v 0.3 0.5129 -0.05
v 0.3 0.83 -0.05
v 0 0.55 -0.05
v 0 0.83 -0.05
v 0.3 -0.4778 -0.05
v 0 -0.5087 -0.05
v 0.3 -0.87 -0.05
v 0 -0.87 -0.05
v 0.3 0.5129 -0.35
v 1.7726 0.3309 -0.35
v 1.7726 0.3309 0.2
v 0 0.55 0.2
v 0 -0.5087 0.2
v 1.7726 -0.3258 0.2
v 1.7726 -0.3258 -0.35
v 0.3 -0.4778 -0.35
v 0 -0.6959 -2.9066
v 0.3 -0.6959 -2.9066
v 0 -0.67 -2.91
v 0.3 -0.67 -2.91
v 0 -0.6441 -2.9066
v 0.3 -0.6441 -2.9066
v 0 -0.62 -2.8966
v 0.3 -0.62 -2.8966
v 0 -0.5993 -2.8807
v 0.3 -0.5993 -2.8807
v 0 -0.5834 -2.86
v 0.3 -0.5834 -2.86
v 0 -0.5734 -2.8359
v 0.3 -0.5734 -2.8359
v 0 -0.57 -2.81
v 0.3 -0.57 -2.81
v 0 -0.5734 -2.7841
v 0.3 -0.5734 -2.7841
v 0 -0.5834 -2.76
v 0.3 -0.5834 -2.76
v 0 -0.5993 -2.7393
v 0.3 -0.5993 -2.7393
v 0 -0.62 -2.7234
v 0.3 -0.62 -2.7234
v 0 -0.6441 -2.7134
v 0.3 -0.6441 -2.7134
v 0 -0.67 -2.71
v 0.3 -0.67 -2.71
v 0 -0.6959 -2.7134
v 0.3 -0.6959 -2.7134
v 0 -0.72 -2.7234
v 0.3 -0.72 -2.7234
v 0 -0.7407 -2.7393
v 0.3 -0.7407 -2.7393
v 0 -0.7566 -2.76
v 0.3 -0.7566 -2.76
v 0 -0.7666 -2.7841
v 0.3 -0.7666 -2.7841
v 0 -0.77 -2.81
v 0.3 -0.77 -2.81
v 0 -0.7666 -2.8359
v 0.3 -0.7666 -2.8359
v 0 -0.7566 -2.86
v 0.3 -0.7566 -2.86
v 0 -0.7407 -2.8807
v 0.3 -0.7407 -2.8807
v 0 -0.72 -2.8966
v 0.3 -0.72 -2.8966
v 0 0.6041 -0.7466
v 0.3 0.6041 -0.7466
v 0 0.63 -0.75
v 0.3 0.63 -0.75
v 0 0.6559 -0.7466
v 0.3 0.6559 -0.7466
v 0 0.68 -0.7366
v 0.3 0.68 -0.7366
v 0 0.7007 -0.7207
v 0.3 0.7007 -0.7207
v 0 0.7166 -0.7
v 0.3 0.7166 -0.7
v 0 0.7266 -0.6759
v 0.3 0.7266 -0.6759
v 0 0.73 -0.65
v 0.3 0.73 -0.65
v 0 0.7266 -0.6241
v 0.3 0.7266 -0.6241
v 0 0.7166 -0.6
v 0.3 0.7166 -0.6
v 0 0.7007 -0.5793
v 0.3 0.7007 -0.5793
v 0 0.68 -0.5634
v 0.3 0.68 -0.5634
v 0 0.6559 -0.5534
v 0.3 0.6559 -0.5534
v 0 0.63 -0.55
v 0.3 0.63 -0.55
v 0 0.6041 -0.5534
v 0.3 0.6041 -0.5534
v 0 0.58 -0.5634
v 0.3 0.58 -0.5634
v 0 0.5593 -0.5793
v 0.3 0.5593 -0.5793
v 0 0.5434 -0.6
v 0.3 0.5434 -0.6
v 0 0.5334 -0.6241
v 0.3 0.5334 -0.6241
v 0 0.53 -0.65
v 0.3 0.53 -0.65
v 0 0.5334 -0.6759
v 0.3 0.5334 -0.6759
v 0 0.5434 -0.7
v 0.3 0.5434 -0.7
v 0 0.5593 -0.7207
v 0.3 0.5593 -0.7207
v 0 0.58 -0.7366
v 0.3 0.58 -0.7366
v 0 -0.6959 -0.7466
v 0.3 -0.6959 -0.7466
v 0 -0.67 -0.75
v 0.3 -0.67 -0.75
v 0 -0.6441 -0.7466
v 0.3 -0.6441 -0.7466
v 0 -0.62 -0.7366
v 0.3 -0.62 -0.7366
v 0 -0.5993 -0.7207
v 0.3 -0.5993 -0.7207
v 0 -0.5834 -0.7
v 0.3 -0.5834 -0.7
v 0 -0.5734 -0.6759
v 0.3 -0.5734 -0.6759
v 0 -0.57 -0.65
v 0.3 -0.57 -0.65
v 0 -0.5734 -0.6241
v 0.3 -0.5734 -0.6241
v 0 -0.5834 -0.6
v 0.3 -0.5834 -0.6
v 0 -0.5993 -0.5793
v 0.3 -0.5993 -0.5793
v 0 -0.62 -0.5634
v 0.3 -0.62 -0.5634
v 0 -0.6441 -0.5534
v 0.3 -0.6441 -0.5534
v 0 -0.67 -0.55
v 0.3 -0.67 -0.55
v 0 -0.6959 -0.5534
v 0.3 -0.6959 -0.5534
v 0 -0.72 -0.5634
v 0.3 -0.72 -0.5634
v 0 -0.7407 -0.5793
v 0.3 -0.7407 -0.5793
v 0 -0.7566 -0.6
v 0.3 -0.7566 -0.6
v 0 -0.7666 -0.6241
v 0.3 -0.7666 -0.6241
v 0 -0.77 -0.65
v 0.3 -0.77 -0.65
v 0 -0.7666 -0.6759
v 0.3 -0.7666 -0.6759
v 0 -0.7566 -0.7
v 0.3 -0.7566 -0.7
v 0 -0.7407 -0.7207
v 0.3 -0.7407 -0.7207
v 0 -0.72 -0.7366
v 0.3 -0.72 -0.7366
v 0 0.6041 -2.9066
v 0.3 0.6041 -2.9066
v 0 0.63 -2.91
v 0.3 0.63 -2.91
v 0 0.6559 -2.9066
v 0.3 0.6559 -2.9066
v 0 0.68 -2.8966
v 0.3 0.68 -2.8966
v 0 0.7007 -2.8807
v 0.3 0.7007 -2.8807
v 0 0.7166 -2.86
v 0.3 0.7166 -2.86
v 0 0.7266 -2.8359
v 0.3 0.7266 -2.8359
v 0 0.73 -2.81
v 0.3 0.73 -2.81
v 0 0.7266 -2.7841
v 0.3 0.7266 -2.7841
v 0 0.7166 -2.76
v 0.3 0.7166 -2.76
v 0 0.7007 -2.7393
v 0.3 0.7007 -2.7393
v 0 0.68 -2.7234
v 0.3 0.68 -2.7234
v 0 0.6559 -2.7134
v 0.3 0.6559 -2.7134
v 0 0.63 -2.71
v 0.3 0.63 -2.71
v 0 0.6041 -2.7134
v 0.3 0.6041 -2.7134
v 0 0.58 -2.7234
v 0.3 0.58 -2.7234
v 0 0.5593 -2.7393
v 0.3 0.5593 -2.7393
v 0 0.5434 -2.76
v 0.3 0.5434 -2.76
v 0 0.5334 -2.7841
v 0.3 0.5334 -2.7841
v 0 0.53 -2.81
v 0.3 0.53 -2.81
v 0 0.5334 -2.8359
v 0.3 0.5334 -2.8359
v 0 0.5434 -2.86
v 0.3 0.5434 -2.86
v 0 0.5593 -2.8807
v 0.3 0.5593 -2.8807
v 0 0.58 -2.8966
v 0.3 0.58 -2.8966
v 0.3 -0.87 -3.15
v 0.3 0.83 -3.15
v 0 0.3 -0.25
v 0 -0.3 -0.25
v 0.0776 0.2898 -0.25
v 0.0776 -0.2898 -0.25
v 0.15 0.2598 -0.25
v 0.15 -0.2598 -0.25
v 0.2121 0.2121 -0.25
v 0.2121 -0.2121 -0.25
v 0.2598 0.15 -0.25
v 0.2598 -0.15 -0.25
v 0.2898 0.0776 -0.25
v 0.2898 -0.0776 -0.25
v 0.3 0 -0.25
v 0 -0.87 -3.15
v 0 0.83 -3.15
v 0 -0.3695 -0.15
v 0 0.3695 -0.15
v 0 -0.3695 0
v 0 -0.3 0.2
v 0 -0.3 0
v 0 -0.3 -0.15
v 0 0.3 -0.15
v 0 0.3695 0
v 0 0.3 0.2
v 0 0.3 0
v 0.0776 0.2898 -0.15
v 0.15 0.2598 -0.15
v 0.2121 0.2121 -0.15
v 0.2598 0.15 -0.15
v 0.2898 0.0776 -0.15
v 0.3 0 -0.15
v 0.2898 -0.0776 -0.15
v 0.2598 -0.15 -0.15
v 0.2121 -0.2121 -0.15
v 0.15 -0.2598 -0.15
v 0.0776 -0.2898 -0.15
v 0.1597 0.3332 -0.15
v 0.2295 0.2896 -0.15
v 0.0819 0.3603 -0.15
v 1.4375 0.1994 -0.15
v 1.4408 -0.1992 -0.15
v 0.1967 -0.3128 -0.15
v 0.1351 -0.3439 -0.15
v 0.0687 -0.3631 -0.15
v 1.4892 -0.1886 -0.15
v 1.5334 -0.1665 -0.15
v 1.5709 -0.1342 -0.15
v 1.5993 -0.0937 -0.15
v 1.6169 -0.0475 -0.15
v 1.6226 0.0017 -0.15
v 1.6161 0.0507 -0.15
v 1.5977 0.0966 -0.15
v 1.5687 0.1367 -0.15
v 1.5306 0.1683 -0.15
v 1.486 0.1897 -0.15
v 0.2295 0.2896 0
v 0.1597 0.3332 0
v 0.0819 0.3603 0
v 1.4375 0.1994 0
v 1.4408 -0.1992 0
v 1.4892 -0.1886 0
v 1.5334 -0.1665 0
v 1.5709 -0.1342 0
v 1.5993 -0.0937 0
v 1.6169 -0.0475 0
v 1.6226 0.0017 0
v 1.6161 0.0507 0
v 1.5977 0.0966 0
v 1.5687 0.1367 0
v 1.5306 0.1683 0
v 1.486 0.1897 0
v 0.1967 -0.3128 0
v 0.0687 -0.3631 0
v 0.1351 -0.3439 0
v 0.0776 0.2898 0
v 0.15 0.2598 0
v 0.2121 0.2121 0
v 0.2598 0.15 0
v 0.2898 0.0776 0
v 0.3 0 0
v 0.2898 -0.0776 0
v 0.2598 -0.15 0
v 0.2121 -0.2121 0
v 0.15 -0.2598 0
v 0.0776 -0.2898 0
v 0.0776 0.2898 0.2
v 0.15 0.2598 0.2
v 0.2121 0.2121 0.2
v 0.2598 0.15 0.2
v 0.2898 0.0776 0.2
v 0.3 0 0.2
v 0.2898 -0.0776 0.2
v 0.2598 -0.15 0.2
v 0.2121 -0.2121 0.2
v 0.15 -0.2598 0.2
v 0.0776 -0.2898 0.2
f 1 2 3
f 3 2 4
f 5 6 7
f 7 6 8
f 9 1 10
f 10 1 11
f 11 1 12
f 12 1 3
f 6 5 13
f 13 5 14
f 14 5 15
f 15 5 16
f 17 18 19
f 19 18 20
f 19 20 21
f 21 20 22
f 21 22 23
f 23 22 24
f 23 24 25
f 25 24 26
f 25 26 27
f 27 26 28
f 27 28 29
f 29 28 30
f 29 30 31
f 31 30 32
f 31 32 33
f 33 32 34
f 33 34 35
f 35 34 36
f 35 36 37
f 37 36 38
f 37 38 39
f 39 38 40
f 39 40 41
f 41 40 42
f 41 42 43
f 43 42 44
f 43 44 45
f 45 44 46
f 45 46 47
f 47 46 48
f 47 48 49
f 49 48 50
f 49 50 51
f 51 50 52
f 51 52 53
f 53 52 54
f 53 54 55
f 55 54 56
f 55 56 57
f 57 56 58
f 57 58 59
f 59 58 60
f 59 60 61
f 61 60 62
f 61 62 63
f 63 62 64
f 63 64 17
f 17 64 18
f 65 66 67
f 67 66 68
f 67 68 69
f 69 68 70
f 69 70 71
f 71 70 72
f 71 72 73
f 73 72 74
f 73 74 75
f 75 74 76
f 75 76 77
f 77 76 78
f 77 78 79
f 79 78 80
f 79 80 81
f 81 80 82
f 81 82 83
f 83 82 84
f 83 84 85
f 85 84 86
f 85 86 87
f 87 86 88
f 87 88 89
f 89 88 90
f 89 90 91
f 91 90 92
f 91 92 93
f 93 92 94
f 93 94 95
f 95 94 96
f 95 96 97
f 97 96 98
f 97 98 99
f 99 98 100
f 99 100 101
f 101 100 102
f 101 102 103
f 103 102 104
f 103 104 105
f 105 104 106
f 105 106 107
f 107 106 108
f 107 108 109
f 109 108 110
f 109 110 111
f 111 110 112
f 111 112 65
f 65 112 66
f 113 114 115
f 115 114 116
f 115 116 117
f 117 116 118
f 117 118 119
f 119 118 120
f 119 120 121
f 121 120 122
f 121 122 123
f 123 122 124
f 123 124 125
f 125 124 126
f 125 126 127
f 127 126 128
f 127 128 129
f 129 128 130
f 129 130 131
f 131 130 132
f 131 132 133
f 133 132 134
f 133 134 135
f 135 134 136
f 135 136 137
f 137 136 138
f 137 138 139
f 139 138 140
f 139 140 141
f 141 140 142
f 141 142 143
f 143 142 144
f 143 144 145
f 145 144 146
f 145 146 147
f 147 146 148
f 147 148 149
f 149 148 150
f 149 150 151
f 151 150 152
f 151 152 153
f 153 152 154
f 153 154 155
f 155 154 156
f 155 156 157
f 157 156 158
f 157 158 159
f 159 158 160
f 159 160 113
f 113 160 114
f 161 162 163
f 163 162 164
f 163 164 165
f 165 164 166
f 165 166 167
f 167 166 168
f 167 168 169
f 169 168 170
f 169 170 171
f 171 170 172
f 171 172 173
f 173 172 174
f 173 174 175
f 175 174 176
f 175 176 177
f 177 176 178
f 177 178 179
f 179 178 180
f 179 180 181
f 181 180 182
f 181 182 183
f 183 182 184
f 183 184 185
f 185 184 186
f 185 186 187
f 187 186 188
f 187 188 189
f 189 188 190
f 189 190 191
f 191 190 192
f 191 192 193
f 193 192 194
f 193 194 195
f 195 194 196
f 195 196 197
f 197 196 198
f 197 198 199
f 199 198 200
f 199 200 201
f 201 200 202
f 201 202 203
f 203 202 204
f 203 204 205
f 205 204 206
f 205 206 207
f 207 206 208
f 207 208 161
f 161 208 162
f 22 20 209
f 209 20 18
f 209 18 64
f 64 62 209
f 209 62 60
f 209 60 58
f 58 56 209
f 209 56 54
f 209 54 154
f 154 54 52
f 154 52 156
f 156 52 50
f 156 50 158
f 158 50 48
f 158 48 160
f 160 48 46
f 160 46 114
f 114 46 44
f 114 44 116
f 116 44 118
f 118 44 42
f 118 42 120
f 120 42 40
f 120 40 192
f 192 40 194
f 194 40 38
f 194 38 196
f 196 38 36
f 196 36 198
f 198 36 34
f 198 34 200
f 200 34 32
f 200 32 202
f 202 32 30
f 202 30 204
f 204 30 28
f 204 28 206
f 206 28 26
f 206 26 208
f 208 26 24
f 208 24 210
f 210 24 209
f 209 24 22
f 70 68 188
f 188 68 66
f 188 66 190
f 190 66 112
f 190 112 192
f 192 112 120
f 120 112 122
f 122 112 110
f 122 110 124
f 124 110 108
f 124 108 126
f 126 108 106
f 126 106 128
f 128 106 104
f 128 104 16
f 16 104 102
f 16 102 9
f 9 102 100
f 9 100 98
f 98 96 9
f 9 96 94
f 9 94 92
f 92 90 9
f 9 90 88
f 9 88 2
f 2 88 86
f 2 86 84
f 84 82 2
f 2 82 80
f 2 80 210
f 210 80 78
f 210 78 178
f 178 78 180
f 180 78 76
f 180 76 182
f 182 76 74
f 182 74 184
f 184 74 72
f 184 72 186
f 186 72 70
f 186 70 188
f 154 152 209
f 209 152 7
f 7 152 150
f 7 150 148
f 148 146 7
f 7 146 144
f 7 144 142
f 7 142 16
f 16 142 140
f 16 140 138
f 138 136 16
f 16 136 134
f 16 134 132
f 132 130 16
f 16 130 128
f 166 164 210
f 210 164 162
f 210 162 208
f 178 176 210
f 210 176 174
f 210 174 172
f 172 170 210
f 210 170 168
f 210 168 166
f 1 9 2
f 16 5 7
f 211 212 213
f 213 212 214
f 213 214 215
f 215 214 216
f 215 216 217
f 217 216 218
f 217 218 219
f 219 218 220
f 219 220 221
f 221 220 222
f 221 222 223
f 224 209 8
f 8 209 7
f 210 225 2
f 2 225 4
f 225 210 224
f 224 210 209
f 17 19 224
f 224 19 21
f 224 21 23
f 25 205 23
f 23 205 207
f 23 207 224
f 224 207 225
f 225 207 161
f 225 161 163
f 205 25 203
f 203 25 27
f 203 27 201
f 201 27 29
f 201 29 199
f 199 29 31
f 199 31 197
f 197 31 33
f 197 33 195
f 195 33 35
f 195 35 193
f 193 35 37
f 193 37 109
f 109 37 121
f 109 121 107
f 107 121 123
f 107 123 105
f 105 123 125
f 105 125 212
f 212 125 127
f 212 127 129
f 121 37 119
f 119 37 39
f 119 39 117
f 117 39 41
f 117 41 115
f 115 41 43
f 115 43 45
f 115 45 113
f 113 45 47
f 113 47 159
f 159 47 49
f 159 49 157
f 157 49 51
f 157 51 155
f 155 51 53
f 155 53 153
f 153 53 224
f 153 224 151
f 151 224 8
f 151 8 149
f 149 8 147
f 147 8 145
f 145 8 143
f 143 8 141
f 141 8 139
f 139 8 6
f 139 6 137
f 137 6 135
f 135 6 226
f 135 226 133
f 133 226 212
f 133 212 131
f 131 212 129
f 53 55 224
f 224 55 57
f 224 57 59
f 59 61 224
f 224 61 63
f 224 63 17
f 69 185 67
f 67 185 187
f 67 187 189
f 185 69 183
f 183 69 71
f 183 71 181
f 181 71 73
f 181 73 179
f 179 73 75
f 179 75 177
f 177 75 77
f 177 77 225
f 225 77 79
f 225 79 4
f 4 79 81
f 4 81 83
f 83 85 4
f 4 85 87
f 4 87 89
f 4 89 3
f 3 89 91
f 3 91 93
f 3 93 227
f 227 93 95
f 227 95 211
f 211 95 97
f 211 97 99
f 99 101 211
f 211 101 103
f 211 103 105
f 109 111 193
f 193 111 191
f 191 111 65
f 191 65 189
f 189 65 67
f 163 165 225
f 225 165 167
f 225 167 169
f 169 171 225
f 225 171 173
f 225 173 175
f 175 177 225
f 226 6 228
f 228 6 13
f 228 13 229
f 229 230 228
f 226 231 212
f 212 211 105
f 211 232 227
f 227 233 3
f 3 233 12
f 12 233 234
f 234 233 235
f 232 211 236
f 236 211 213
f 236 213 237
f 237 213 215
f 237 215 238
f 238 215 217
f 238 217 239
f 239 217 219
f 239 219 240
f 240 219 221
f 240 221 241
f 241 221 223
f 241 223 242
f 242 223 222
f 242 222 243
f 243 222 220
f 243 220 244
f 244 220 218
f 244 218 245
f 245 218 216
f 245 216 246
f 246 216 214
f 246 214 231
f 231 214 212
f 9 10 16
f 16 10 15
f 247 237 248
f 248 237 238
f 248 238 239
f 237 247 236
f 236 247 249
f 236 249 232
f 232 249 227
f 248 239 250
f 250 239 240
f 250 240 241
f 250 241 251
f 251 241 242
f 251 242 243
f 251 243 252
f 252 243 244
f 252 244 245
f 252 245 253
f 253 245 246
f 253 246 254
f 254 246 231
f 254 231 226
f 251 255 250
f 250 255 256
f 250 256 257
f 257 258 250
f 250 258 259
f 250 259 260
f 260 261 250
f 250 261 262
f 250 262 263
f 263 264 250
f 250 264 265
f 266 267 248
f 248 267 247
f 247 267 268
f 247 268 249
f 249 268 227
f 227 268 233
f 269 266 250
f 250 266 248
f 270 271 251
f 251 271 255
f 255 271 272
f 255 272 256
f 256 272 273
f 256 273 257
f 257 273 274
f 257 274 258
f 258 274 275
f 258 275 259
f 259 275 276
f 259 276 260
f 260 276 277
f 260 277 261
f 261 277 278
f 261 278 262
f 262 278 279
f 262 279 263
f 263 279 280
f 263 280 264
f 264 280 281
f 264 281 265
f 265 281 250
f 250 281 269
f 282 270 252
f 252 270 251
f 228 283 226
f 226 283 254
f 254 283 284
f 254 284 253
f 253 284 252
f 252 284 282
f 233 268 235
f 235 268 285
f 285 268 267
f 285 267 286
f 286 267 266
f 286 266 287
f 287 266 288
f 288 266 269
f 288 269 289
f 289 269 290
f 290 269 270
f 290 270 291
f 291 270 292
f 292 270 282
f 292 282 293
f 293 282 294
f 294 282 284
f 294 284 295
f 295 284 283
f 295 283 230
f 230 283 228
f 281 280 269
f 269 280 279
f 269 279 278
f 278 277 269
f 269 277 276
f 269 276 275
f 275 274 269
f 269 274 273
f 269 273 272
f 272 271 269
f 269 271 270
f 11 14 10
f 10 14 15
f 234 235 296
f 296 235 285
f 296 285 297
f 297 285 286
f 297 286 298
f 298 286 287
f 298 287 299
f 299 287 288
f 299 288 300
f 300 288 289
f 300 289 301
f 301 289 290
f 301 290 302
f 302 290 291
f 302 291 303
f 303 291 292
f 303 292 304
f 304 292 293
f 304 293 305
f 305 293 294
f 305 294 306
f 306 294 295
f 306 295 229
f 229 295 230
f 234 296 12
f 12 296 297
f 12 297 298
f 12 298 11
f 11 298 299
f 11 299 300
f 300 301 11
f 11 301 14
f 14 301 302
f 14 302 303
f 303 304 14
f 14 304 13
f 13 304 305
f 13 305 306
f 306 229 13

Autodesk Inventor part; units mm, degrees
ref_plane "YZ Plane" through (0, 0, 0) normal (1, 0, 0) x (0, 1, 0)
ref_plane "XZ Plane" through (0, 0, 0) normal (0, 1, 0) x (-1, 0, 0)
ref_plane "XY Plane" through (0, 0, 0) normal (0, 0, 1) x (1, 0, 0)
sketch "Boceto1" plane through (0, 0, 0) normal (0, 0, 1) x (1, 0, 0)
  arc A0 (1.4408, -0.1992) -> (1.4375, 0.1994) centre (1.4226, 0) ccw
  line L0 (0.2295, 0.2896) -> (1.4375, 0.1994)
  line L1 (0.1967, -0.3128) -> (1.4408, -0.1992)
  arc A1 (0, -0.3) -> (0, 0.3) centre (0, 0) ccw
  line L2 (0, 0) -> (0, 0.55)
  line L3 (1.7726, 0.3309) -> (0, 0.55)
  line L4 (1.7726, -0.3258) -> (0, -0.5087)
  line L5 (1.6226, 0.0017) -> (1.7726, 0.0017)
  line L6 (1.7726, 0.0017) -> (1.7726, 0.3309)
  line L7 (1.7726, 0.3309) -> (1.7726, -0.3258)
  line L8 (0, 0.55) -> (0, -0.5087)
  arc A2 (0.2295, 0.2896) -> (0, 0.3695) centre (0, 0) ccw
  arc A3 (0, -0.3695) -> (0.1967, -0.3128) centre (0, 0) ccw
  line L9 (0, 0.3) -> (0, -0.3)
extrude "Extrusión1" add sketch "Boceto1" along normal blind 0.2 contours L1 A3 L8 A1 L2 A2 L0 A0 | A0 L5 L7 L4 L8 A3 L1 | A0 L0 A2 L2 L3 L6 L5
sketch "Boceto2" plane through (0, 0, 0) normal (0, 0, -1) x (-1, 0, 0)
  line L0 (0, 0) -> (0, 0.55)
  line L1 (0, 0.55) -> (0, -0.5087)
  line L2 (0, 0.3) -> (0, -0.3)
  line L3 (0, 0) -> (0, 0.55)
  line L4 (0, 0.55) -> (0, -0.5087)
  line L5 (0, 0.3) -> (0, -0.3)
  arc A0 (0, 0.3) -> (0, -0.3) centre (0, 0) ccw
  arc A1 (-0.1967, -0.3128) -> (0, -0.3695) centre (0, 0) ccw
  line L6 (-0.2295, 0.2896) -> (-1.4375, 0.1994)
  line L7 (-0.1967, -0.3128) -> (-1.4408, -0.1992)
  arc A2 (-1.4375, 0.1994) -> (-1.4408, -0.1992) centre (-1.4226, 0) ccw
  line L8 (-1.7726, -0.3258) -> (0, -0.5087)
  line L9 (-1.7726, 0.3309) -> (-1.7726, -0.3258)
  line L10 (-1.7726, 0.0017) -> (-1.7726, 0.3309)
  line L11 (-1.6226, 0.0017) -> (-1.7726, 0.0017)
  line L12 (-1.7726, 0.3309) -> (0, 0.55)
  arc A3 (0, 0.3695) -> (-0.2295, 0.2896) centre (0, 0) ccw
  arc A4 (0, 0.3) -> (0, -0.3) centre (0, 0) ccw
  arc A5 (-0.1967, -0.3128) -> (0, -0.3695) centre (0, 0) ccw
  line L13 (-0.2295, 0.2896) -> (-1.4375, 0.1994)
  line L14 (-0.1967, -0.3128) -> (-1.4408, -0.1992)
  arc A6 (-1.4375, 0.1994) -> (-1.4408, -0.1992) centre (-1.4226, 0) ccw
  line L15 (-1.7726, -0.3258) -> (0, -0.5087)
  line L16 (-1.7726, 0.3309) -> (-1.7726, -0.3258)
  line L17 (-1.7726, 0.0017) -> (-1.7726, 0.3309)
  line L18 (-1.6226, 0.0017) -> (-1.7726, 0.0017)
  line L19 (-1.7726, 0.3309) -> (0, 0.55)
  arc A7 (0, 0.3695) -> (-0.2295, 0.2896) centre (0, 0) ccw
extrude "Extrusión2" add sketch "Boceto2" along normal blind 0.15 contours A3 L6 A2 L11 L9 L12 L0 | L1 L8 L9 L11 A2 L7 A1
sketch "Boceto3" plane through (0, 0, -0.15) normal (0, 0, -1) x (-1, 0, 0)
  arc A0 (0, 0.3695) -> (-0.2295, 0.2896) centre (0, 0) ccw projected
  line L0 (-0.2295, 0.2896) -> (-1.4375, 0.1994) projected
  arc A1 (-1.4375, 0.1994) -> (-1.4408, -0.1992) centre (-1.4226, 0) ccw projected
  line L1 (-1.4408, -0.1992) -> (-0.1967, -0.3128) projected
  arc A2 (-0.1967, -0.3128) -> (0, -0.3695) centre (0, 0) ccw projected
  line L2 (0, -0.3) -> (0, -0.3695) projected
  line L3 (0, -0.5087) -> (0, -0.3695) projected
  arc A3 (-0.1967, -0.3128) -> (0, -0.3695) centre (0, 0) ccw projected
  line L4 (-0.1967, -0.3128) -> (-1.4408, -0.1992) projected
  arc A4 (-1.4375, 0.1994) -> (-1.4408, -0.1992) centre (-1.4226, 0) ccw projected
  line L5 (-1.4375, 0.1994) -> (-0.2295, 0.2896) projected
  arc A5 (0, 0.3695) -> (-0.2295, 0.2896) centre (0, 0) ccw projected
  line L6 (0, 0.3695) -> (0, 0.55) projected
  line L7 (0, 0.55) -> (-1.7726, 0.3309) projected
  line L8 (-1.7726, 0.3309) -> (-1.7726, -0.3258) projected
  line L9 (-1.7726, -0.3258) -> (0, -0.5087) projected
  arc A6 (0, 0.3) -> (0, -0.3) centre (0, 0) ccw projected
  line L10 (0, 0.3695) -> (0, 0.3) projected
extrude "Extrusión3" add sketch "Boceto3" along normal blind 0.2
sketch "Boceto4" plane through (0, 0, -0.35) normal (0, 0, -1) x (-1, 0, 0)
  line L0 (0, -0.5087) -> (0, 0.55) projected
  line L1 (-1.7726, 0.3309) -> (0, 0.55) projected
  line L2 (0, 0.55) -> (0, 0.83)
  line L3 (0, 0.83) -> (-0.3, 0.83)
  line L4 (-0.3, 0.83) -> (-0.3, -0.87)
  line L5 (-0.3, -0.87) -> (0, -0.87)
  line L6 (0, -0.87) -> (0, 0.83)
  point P0 (0, 0)
  dimension "d8" = 0.28
  dimension "d9" = 0.3
  dimension "d10" = 1.7
extrude "Extrusión4" add sketch "Boceto4" along normal blind 2.8 and the other way blind 0.1
sketch "Boceto5" plane through (0.3, -0.4778, -0.35) normal (1, 0, 0) x (0, 0, -1)
  line L0 (0, -0.3922) -> (2.3, -0.3922)
  line L1 (0, -0.3922) -> (0, 1.1078)
  line L2 (0, 1.3078) -> (0, -0.3922)
  line L3 (0, -0.3922) -> (0, -0.1922)
  line L4 (0, 1.3078) -> (2.3, 1.3078)
  line L5 (-0.1, 0.9907) -> (-0.1, 1.3078) projected
  line L6 (0, 0.9907) -> (0, 0.8087) projected
  line L7 (0, 0.9907) -> (0, 1.3078)
  circle A0 centre (0.3, 1.1078) radius 0.1
  circle A1 centre (0.3, -0.1922) radius 0.1
  circle A2 centre (2.46, 1.1078) radius 0.1
  circle A3 centre (2.46, -0.1922) radius 0.1
  line L8 (2.46, 1.1078) -> (2.46, 1.1492)
  point P0 (-0.35, 0.4778)
  dimension "d15" = 0.2
  dimension "d27" = 0.2
extrude "Extrusión5" cut sketch "Boceto5" against normal blind 2.3
sketch "Boceto6" plane through (0, 0, -0.25) normal (0, 0, 1) x (1, 0, 0)
  line L0 (0, -0.5087) -> (0.3, -0.4778) projected
  line L1 (0, -0.5087) -> (0, -0.87) projected
  line L2 (0, -0.87) -> (0.3, -0.87) projected
  line L3 (0.3, -0.87) -> (0.3, -0.4778) projected
  line L4 (0.3, 0.5129) -> (0, 0.55) projected
  line L5 (0.3, 0.5129) -> (0.3, 0.83) projected
  line L6 (0.3, 0.83) -> (0, 0.83) projected
  line L7 (0, 0.83) -> (0, 0.55) projected
  point P0 (0, 0)
extrude "Extrusión6" add sketch "Boceto6" along normal blind 0.2
properties part number "LearnbotSupportCameraC"
